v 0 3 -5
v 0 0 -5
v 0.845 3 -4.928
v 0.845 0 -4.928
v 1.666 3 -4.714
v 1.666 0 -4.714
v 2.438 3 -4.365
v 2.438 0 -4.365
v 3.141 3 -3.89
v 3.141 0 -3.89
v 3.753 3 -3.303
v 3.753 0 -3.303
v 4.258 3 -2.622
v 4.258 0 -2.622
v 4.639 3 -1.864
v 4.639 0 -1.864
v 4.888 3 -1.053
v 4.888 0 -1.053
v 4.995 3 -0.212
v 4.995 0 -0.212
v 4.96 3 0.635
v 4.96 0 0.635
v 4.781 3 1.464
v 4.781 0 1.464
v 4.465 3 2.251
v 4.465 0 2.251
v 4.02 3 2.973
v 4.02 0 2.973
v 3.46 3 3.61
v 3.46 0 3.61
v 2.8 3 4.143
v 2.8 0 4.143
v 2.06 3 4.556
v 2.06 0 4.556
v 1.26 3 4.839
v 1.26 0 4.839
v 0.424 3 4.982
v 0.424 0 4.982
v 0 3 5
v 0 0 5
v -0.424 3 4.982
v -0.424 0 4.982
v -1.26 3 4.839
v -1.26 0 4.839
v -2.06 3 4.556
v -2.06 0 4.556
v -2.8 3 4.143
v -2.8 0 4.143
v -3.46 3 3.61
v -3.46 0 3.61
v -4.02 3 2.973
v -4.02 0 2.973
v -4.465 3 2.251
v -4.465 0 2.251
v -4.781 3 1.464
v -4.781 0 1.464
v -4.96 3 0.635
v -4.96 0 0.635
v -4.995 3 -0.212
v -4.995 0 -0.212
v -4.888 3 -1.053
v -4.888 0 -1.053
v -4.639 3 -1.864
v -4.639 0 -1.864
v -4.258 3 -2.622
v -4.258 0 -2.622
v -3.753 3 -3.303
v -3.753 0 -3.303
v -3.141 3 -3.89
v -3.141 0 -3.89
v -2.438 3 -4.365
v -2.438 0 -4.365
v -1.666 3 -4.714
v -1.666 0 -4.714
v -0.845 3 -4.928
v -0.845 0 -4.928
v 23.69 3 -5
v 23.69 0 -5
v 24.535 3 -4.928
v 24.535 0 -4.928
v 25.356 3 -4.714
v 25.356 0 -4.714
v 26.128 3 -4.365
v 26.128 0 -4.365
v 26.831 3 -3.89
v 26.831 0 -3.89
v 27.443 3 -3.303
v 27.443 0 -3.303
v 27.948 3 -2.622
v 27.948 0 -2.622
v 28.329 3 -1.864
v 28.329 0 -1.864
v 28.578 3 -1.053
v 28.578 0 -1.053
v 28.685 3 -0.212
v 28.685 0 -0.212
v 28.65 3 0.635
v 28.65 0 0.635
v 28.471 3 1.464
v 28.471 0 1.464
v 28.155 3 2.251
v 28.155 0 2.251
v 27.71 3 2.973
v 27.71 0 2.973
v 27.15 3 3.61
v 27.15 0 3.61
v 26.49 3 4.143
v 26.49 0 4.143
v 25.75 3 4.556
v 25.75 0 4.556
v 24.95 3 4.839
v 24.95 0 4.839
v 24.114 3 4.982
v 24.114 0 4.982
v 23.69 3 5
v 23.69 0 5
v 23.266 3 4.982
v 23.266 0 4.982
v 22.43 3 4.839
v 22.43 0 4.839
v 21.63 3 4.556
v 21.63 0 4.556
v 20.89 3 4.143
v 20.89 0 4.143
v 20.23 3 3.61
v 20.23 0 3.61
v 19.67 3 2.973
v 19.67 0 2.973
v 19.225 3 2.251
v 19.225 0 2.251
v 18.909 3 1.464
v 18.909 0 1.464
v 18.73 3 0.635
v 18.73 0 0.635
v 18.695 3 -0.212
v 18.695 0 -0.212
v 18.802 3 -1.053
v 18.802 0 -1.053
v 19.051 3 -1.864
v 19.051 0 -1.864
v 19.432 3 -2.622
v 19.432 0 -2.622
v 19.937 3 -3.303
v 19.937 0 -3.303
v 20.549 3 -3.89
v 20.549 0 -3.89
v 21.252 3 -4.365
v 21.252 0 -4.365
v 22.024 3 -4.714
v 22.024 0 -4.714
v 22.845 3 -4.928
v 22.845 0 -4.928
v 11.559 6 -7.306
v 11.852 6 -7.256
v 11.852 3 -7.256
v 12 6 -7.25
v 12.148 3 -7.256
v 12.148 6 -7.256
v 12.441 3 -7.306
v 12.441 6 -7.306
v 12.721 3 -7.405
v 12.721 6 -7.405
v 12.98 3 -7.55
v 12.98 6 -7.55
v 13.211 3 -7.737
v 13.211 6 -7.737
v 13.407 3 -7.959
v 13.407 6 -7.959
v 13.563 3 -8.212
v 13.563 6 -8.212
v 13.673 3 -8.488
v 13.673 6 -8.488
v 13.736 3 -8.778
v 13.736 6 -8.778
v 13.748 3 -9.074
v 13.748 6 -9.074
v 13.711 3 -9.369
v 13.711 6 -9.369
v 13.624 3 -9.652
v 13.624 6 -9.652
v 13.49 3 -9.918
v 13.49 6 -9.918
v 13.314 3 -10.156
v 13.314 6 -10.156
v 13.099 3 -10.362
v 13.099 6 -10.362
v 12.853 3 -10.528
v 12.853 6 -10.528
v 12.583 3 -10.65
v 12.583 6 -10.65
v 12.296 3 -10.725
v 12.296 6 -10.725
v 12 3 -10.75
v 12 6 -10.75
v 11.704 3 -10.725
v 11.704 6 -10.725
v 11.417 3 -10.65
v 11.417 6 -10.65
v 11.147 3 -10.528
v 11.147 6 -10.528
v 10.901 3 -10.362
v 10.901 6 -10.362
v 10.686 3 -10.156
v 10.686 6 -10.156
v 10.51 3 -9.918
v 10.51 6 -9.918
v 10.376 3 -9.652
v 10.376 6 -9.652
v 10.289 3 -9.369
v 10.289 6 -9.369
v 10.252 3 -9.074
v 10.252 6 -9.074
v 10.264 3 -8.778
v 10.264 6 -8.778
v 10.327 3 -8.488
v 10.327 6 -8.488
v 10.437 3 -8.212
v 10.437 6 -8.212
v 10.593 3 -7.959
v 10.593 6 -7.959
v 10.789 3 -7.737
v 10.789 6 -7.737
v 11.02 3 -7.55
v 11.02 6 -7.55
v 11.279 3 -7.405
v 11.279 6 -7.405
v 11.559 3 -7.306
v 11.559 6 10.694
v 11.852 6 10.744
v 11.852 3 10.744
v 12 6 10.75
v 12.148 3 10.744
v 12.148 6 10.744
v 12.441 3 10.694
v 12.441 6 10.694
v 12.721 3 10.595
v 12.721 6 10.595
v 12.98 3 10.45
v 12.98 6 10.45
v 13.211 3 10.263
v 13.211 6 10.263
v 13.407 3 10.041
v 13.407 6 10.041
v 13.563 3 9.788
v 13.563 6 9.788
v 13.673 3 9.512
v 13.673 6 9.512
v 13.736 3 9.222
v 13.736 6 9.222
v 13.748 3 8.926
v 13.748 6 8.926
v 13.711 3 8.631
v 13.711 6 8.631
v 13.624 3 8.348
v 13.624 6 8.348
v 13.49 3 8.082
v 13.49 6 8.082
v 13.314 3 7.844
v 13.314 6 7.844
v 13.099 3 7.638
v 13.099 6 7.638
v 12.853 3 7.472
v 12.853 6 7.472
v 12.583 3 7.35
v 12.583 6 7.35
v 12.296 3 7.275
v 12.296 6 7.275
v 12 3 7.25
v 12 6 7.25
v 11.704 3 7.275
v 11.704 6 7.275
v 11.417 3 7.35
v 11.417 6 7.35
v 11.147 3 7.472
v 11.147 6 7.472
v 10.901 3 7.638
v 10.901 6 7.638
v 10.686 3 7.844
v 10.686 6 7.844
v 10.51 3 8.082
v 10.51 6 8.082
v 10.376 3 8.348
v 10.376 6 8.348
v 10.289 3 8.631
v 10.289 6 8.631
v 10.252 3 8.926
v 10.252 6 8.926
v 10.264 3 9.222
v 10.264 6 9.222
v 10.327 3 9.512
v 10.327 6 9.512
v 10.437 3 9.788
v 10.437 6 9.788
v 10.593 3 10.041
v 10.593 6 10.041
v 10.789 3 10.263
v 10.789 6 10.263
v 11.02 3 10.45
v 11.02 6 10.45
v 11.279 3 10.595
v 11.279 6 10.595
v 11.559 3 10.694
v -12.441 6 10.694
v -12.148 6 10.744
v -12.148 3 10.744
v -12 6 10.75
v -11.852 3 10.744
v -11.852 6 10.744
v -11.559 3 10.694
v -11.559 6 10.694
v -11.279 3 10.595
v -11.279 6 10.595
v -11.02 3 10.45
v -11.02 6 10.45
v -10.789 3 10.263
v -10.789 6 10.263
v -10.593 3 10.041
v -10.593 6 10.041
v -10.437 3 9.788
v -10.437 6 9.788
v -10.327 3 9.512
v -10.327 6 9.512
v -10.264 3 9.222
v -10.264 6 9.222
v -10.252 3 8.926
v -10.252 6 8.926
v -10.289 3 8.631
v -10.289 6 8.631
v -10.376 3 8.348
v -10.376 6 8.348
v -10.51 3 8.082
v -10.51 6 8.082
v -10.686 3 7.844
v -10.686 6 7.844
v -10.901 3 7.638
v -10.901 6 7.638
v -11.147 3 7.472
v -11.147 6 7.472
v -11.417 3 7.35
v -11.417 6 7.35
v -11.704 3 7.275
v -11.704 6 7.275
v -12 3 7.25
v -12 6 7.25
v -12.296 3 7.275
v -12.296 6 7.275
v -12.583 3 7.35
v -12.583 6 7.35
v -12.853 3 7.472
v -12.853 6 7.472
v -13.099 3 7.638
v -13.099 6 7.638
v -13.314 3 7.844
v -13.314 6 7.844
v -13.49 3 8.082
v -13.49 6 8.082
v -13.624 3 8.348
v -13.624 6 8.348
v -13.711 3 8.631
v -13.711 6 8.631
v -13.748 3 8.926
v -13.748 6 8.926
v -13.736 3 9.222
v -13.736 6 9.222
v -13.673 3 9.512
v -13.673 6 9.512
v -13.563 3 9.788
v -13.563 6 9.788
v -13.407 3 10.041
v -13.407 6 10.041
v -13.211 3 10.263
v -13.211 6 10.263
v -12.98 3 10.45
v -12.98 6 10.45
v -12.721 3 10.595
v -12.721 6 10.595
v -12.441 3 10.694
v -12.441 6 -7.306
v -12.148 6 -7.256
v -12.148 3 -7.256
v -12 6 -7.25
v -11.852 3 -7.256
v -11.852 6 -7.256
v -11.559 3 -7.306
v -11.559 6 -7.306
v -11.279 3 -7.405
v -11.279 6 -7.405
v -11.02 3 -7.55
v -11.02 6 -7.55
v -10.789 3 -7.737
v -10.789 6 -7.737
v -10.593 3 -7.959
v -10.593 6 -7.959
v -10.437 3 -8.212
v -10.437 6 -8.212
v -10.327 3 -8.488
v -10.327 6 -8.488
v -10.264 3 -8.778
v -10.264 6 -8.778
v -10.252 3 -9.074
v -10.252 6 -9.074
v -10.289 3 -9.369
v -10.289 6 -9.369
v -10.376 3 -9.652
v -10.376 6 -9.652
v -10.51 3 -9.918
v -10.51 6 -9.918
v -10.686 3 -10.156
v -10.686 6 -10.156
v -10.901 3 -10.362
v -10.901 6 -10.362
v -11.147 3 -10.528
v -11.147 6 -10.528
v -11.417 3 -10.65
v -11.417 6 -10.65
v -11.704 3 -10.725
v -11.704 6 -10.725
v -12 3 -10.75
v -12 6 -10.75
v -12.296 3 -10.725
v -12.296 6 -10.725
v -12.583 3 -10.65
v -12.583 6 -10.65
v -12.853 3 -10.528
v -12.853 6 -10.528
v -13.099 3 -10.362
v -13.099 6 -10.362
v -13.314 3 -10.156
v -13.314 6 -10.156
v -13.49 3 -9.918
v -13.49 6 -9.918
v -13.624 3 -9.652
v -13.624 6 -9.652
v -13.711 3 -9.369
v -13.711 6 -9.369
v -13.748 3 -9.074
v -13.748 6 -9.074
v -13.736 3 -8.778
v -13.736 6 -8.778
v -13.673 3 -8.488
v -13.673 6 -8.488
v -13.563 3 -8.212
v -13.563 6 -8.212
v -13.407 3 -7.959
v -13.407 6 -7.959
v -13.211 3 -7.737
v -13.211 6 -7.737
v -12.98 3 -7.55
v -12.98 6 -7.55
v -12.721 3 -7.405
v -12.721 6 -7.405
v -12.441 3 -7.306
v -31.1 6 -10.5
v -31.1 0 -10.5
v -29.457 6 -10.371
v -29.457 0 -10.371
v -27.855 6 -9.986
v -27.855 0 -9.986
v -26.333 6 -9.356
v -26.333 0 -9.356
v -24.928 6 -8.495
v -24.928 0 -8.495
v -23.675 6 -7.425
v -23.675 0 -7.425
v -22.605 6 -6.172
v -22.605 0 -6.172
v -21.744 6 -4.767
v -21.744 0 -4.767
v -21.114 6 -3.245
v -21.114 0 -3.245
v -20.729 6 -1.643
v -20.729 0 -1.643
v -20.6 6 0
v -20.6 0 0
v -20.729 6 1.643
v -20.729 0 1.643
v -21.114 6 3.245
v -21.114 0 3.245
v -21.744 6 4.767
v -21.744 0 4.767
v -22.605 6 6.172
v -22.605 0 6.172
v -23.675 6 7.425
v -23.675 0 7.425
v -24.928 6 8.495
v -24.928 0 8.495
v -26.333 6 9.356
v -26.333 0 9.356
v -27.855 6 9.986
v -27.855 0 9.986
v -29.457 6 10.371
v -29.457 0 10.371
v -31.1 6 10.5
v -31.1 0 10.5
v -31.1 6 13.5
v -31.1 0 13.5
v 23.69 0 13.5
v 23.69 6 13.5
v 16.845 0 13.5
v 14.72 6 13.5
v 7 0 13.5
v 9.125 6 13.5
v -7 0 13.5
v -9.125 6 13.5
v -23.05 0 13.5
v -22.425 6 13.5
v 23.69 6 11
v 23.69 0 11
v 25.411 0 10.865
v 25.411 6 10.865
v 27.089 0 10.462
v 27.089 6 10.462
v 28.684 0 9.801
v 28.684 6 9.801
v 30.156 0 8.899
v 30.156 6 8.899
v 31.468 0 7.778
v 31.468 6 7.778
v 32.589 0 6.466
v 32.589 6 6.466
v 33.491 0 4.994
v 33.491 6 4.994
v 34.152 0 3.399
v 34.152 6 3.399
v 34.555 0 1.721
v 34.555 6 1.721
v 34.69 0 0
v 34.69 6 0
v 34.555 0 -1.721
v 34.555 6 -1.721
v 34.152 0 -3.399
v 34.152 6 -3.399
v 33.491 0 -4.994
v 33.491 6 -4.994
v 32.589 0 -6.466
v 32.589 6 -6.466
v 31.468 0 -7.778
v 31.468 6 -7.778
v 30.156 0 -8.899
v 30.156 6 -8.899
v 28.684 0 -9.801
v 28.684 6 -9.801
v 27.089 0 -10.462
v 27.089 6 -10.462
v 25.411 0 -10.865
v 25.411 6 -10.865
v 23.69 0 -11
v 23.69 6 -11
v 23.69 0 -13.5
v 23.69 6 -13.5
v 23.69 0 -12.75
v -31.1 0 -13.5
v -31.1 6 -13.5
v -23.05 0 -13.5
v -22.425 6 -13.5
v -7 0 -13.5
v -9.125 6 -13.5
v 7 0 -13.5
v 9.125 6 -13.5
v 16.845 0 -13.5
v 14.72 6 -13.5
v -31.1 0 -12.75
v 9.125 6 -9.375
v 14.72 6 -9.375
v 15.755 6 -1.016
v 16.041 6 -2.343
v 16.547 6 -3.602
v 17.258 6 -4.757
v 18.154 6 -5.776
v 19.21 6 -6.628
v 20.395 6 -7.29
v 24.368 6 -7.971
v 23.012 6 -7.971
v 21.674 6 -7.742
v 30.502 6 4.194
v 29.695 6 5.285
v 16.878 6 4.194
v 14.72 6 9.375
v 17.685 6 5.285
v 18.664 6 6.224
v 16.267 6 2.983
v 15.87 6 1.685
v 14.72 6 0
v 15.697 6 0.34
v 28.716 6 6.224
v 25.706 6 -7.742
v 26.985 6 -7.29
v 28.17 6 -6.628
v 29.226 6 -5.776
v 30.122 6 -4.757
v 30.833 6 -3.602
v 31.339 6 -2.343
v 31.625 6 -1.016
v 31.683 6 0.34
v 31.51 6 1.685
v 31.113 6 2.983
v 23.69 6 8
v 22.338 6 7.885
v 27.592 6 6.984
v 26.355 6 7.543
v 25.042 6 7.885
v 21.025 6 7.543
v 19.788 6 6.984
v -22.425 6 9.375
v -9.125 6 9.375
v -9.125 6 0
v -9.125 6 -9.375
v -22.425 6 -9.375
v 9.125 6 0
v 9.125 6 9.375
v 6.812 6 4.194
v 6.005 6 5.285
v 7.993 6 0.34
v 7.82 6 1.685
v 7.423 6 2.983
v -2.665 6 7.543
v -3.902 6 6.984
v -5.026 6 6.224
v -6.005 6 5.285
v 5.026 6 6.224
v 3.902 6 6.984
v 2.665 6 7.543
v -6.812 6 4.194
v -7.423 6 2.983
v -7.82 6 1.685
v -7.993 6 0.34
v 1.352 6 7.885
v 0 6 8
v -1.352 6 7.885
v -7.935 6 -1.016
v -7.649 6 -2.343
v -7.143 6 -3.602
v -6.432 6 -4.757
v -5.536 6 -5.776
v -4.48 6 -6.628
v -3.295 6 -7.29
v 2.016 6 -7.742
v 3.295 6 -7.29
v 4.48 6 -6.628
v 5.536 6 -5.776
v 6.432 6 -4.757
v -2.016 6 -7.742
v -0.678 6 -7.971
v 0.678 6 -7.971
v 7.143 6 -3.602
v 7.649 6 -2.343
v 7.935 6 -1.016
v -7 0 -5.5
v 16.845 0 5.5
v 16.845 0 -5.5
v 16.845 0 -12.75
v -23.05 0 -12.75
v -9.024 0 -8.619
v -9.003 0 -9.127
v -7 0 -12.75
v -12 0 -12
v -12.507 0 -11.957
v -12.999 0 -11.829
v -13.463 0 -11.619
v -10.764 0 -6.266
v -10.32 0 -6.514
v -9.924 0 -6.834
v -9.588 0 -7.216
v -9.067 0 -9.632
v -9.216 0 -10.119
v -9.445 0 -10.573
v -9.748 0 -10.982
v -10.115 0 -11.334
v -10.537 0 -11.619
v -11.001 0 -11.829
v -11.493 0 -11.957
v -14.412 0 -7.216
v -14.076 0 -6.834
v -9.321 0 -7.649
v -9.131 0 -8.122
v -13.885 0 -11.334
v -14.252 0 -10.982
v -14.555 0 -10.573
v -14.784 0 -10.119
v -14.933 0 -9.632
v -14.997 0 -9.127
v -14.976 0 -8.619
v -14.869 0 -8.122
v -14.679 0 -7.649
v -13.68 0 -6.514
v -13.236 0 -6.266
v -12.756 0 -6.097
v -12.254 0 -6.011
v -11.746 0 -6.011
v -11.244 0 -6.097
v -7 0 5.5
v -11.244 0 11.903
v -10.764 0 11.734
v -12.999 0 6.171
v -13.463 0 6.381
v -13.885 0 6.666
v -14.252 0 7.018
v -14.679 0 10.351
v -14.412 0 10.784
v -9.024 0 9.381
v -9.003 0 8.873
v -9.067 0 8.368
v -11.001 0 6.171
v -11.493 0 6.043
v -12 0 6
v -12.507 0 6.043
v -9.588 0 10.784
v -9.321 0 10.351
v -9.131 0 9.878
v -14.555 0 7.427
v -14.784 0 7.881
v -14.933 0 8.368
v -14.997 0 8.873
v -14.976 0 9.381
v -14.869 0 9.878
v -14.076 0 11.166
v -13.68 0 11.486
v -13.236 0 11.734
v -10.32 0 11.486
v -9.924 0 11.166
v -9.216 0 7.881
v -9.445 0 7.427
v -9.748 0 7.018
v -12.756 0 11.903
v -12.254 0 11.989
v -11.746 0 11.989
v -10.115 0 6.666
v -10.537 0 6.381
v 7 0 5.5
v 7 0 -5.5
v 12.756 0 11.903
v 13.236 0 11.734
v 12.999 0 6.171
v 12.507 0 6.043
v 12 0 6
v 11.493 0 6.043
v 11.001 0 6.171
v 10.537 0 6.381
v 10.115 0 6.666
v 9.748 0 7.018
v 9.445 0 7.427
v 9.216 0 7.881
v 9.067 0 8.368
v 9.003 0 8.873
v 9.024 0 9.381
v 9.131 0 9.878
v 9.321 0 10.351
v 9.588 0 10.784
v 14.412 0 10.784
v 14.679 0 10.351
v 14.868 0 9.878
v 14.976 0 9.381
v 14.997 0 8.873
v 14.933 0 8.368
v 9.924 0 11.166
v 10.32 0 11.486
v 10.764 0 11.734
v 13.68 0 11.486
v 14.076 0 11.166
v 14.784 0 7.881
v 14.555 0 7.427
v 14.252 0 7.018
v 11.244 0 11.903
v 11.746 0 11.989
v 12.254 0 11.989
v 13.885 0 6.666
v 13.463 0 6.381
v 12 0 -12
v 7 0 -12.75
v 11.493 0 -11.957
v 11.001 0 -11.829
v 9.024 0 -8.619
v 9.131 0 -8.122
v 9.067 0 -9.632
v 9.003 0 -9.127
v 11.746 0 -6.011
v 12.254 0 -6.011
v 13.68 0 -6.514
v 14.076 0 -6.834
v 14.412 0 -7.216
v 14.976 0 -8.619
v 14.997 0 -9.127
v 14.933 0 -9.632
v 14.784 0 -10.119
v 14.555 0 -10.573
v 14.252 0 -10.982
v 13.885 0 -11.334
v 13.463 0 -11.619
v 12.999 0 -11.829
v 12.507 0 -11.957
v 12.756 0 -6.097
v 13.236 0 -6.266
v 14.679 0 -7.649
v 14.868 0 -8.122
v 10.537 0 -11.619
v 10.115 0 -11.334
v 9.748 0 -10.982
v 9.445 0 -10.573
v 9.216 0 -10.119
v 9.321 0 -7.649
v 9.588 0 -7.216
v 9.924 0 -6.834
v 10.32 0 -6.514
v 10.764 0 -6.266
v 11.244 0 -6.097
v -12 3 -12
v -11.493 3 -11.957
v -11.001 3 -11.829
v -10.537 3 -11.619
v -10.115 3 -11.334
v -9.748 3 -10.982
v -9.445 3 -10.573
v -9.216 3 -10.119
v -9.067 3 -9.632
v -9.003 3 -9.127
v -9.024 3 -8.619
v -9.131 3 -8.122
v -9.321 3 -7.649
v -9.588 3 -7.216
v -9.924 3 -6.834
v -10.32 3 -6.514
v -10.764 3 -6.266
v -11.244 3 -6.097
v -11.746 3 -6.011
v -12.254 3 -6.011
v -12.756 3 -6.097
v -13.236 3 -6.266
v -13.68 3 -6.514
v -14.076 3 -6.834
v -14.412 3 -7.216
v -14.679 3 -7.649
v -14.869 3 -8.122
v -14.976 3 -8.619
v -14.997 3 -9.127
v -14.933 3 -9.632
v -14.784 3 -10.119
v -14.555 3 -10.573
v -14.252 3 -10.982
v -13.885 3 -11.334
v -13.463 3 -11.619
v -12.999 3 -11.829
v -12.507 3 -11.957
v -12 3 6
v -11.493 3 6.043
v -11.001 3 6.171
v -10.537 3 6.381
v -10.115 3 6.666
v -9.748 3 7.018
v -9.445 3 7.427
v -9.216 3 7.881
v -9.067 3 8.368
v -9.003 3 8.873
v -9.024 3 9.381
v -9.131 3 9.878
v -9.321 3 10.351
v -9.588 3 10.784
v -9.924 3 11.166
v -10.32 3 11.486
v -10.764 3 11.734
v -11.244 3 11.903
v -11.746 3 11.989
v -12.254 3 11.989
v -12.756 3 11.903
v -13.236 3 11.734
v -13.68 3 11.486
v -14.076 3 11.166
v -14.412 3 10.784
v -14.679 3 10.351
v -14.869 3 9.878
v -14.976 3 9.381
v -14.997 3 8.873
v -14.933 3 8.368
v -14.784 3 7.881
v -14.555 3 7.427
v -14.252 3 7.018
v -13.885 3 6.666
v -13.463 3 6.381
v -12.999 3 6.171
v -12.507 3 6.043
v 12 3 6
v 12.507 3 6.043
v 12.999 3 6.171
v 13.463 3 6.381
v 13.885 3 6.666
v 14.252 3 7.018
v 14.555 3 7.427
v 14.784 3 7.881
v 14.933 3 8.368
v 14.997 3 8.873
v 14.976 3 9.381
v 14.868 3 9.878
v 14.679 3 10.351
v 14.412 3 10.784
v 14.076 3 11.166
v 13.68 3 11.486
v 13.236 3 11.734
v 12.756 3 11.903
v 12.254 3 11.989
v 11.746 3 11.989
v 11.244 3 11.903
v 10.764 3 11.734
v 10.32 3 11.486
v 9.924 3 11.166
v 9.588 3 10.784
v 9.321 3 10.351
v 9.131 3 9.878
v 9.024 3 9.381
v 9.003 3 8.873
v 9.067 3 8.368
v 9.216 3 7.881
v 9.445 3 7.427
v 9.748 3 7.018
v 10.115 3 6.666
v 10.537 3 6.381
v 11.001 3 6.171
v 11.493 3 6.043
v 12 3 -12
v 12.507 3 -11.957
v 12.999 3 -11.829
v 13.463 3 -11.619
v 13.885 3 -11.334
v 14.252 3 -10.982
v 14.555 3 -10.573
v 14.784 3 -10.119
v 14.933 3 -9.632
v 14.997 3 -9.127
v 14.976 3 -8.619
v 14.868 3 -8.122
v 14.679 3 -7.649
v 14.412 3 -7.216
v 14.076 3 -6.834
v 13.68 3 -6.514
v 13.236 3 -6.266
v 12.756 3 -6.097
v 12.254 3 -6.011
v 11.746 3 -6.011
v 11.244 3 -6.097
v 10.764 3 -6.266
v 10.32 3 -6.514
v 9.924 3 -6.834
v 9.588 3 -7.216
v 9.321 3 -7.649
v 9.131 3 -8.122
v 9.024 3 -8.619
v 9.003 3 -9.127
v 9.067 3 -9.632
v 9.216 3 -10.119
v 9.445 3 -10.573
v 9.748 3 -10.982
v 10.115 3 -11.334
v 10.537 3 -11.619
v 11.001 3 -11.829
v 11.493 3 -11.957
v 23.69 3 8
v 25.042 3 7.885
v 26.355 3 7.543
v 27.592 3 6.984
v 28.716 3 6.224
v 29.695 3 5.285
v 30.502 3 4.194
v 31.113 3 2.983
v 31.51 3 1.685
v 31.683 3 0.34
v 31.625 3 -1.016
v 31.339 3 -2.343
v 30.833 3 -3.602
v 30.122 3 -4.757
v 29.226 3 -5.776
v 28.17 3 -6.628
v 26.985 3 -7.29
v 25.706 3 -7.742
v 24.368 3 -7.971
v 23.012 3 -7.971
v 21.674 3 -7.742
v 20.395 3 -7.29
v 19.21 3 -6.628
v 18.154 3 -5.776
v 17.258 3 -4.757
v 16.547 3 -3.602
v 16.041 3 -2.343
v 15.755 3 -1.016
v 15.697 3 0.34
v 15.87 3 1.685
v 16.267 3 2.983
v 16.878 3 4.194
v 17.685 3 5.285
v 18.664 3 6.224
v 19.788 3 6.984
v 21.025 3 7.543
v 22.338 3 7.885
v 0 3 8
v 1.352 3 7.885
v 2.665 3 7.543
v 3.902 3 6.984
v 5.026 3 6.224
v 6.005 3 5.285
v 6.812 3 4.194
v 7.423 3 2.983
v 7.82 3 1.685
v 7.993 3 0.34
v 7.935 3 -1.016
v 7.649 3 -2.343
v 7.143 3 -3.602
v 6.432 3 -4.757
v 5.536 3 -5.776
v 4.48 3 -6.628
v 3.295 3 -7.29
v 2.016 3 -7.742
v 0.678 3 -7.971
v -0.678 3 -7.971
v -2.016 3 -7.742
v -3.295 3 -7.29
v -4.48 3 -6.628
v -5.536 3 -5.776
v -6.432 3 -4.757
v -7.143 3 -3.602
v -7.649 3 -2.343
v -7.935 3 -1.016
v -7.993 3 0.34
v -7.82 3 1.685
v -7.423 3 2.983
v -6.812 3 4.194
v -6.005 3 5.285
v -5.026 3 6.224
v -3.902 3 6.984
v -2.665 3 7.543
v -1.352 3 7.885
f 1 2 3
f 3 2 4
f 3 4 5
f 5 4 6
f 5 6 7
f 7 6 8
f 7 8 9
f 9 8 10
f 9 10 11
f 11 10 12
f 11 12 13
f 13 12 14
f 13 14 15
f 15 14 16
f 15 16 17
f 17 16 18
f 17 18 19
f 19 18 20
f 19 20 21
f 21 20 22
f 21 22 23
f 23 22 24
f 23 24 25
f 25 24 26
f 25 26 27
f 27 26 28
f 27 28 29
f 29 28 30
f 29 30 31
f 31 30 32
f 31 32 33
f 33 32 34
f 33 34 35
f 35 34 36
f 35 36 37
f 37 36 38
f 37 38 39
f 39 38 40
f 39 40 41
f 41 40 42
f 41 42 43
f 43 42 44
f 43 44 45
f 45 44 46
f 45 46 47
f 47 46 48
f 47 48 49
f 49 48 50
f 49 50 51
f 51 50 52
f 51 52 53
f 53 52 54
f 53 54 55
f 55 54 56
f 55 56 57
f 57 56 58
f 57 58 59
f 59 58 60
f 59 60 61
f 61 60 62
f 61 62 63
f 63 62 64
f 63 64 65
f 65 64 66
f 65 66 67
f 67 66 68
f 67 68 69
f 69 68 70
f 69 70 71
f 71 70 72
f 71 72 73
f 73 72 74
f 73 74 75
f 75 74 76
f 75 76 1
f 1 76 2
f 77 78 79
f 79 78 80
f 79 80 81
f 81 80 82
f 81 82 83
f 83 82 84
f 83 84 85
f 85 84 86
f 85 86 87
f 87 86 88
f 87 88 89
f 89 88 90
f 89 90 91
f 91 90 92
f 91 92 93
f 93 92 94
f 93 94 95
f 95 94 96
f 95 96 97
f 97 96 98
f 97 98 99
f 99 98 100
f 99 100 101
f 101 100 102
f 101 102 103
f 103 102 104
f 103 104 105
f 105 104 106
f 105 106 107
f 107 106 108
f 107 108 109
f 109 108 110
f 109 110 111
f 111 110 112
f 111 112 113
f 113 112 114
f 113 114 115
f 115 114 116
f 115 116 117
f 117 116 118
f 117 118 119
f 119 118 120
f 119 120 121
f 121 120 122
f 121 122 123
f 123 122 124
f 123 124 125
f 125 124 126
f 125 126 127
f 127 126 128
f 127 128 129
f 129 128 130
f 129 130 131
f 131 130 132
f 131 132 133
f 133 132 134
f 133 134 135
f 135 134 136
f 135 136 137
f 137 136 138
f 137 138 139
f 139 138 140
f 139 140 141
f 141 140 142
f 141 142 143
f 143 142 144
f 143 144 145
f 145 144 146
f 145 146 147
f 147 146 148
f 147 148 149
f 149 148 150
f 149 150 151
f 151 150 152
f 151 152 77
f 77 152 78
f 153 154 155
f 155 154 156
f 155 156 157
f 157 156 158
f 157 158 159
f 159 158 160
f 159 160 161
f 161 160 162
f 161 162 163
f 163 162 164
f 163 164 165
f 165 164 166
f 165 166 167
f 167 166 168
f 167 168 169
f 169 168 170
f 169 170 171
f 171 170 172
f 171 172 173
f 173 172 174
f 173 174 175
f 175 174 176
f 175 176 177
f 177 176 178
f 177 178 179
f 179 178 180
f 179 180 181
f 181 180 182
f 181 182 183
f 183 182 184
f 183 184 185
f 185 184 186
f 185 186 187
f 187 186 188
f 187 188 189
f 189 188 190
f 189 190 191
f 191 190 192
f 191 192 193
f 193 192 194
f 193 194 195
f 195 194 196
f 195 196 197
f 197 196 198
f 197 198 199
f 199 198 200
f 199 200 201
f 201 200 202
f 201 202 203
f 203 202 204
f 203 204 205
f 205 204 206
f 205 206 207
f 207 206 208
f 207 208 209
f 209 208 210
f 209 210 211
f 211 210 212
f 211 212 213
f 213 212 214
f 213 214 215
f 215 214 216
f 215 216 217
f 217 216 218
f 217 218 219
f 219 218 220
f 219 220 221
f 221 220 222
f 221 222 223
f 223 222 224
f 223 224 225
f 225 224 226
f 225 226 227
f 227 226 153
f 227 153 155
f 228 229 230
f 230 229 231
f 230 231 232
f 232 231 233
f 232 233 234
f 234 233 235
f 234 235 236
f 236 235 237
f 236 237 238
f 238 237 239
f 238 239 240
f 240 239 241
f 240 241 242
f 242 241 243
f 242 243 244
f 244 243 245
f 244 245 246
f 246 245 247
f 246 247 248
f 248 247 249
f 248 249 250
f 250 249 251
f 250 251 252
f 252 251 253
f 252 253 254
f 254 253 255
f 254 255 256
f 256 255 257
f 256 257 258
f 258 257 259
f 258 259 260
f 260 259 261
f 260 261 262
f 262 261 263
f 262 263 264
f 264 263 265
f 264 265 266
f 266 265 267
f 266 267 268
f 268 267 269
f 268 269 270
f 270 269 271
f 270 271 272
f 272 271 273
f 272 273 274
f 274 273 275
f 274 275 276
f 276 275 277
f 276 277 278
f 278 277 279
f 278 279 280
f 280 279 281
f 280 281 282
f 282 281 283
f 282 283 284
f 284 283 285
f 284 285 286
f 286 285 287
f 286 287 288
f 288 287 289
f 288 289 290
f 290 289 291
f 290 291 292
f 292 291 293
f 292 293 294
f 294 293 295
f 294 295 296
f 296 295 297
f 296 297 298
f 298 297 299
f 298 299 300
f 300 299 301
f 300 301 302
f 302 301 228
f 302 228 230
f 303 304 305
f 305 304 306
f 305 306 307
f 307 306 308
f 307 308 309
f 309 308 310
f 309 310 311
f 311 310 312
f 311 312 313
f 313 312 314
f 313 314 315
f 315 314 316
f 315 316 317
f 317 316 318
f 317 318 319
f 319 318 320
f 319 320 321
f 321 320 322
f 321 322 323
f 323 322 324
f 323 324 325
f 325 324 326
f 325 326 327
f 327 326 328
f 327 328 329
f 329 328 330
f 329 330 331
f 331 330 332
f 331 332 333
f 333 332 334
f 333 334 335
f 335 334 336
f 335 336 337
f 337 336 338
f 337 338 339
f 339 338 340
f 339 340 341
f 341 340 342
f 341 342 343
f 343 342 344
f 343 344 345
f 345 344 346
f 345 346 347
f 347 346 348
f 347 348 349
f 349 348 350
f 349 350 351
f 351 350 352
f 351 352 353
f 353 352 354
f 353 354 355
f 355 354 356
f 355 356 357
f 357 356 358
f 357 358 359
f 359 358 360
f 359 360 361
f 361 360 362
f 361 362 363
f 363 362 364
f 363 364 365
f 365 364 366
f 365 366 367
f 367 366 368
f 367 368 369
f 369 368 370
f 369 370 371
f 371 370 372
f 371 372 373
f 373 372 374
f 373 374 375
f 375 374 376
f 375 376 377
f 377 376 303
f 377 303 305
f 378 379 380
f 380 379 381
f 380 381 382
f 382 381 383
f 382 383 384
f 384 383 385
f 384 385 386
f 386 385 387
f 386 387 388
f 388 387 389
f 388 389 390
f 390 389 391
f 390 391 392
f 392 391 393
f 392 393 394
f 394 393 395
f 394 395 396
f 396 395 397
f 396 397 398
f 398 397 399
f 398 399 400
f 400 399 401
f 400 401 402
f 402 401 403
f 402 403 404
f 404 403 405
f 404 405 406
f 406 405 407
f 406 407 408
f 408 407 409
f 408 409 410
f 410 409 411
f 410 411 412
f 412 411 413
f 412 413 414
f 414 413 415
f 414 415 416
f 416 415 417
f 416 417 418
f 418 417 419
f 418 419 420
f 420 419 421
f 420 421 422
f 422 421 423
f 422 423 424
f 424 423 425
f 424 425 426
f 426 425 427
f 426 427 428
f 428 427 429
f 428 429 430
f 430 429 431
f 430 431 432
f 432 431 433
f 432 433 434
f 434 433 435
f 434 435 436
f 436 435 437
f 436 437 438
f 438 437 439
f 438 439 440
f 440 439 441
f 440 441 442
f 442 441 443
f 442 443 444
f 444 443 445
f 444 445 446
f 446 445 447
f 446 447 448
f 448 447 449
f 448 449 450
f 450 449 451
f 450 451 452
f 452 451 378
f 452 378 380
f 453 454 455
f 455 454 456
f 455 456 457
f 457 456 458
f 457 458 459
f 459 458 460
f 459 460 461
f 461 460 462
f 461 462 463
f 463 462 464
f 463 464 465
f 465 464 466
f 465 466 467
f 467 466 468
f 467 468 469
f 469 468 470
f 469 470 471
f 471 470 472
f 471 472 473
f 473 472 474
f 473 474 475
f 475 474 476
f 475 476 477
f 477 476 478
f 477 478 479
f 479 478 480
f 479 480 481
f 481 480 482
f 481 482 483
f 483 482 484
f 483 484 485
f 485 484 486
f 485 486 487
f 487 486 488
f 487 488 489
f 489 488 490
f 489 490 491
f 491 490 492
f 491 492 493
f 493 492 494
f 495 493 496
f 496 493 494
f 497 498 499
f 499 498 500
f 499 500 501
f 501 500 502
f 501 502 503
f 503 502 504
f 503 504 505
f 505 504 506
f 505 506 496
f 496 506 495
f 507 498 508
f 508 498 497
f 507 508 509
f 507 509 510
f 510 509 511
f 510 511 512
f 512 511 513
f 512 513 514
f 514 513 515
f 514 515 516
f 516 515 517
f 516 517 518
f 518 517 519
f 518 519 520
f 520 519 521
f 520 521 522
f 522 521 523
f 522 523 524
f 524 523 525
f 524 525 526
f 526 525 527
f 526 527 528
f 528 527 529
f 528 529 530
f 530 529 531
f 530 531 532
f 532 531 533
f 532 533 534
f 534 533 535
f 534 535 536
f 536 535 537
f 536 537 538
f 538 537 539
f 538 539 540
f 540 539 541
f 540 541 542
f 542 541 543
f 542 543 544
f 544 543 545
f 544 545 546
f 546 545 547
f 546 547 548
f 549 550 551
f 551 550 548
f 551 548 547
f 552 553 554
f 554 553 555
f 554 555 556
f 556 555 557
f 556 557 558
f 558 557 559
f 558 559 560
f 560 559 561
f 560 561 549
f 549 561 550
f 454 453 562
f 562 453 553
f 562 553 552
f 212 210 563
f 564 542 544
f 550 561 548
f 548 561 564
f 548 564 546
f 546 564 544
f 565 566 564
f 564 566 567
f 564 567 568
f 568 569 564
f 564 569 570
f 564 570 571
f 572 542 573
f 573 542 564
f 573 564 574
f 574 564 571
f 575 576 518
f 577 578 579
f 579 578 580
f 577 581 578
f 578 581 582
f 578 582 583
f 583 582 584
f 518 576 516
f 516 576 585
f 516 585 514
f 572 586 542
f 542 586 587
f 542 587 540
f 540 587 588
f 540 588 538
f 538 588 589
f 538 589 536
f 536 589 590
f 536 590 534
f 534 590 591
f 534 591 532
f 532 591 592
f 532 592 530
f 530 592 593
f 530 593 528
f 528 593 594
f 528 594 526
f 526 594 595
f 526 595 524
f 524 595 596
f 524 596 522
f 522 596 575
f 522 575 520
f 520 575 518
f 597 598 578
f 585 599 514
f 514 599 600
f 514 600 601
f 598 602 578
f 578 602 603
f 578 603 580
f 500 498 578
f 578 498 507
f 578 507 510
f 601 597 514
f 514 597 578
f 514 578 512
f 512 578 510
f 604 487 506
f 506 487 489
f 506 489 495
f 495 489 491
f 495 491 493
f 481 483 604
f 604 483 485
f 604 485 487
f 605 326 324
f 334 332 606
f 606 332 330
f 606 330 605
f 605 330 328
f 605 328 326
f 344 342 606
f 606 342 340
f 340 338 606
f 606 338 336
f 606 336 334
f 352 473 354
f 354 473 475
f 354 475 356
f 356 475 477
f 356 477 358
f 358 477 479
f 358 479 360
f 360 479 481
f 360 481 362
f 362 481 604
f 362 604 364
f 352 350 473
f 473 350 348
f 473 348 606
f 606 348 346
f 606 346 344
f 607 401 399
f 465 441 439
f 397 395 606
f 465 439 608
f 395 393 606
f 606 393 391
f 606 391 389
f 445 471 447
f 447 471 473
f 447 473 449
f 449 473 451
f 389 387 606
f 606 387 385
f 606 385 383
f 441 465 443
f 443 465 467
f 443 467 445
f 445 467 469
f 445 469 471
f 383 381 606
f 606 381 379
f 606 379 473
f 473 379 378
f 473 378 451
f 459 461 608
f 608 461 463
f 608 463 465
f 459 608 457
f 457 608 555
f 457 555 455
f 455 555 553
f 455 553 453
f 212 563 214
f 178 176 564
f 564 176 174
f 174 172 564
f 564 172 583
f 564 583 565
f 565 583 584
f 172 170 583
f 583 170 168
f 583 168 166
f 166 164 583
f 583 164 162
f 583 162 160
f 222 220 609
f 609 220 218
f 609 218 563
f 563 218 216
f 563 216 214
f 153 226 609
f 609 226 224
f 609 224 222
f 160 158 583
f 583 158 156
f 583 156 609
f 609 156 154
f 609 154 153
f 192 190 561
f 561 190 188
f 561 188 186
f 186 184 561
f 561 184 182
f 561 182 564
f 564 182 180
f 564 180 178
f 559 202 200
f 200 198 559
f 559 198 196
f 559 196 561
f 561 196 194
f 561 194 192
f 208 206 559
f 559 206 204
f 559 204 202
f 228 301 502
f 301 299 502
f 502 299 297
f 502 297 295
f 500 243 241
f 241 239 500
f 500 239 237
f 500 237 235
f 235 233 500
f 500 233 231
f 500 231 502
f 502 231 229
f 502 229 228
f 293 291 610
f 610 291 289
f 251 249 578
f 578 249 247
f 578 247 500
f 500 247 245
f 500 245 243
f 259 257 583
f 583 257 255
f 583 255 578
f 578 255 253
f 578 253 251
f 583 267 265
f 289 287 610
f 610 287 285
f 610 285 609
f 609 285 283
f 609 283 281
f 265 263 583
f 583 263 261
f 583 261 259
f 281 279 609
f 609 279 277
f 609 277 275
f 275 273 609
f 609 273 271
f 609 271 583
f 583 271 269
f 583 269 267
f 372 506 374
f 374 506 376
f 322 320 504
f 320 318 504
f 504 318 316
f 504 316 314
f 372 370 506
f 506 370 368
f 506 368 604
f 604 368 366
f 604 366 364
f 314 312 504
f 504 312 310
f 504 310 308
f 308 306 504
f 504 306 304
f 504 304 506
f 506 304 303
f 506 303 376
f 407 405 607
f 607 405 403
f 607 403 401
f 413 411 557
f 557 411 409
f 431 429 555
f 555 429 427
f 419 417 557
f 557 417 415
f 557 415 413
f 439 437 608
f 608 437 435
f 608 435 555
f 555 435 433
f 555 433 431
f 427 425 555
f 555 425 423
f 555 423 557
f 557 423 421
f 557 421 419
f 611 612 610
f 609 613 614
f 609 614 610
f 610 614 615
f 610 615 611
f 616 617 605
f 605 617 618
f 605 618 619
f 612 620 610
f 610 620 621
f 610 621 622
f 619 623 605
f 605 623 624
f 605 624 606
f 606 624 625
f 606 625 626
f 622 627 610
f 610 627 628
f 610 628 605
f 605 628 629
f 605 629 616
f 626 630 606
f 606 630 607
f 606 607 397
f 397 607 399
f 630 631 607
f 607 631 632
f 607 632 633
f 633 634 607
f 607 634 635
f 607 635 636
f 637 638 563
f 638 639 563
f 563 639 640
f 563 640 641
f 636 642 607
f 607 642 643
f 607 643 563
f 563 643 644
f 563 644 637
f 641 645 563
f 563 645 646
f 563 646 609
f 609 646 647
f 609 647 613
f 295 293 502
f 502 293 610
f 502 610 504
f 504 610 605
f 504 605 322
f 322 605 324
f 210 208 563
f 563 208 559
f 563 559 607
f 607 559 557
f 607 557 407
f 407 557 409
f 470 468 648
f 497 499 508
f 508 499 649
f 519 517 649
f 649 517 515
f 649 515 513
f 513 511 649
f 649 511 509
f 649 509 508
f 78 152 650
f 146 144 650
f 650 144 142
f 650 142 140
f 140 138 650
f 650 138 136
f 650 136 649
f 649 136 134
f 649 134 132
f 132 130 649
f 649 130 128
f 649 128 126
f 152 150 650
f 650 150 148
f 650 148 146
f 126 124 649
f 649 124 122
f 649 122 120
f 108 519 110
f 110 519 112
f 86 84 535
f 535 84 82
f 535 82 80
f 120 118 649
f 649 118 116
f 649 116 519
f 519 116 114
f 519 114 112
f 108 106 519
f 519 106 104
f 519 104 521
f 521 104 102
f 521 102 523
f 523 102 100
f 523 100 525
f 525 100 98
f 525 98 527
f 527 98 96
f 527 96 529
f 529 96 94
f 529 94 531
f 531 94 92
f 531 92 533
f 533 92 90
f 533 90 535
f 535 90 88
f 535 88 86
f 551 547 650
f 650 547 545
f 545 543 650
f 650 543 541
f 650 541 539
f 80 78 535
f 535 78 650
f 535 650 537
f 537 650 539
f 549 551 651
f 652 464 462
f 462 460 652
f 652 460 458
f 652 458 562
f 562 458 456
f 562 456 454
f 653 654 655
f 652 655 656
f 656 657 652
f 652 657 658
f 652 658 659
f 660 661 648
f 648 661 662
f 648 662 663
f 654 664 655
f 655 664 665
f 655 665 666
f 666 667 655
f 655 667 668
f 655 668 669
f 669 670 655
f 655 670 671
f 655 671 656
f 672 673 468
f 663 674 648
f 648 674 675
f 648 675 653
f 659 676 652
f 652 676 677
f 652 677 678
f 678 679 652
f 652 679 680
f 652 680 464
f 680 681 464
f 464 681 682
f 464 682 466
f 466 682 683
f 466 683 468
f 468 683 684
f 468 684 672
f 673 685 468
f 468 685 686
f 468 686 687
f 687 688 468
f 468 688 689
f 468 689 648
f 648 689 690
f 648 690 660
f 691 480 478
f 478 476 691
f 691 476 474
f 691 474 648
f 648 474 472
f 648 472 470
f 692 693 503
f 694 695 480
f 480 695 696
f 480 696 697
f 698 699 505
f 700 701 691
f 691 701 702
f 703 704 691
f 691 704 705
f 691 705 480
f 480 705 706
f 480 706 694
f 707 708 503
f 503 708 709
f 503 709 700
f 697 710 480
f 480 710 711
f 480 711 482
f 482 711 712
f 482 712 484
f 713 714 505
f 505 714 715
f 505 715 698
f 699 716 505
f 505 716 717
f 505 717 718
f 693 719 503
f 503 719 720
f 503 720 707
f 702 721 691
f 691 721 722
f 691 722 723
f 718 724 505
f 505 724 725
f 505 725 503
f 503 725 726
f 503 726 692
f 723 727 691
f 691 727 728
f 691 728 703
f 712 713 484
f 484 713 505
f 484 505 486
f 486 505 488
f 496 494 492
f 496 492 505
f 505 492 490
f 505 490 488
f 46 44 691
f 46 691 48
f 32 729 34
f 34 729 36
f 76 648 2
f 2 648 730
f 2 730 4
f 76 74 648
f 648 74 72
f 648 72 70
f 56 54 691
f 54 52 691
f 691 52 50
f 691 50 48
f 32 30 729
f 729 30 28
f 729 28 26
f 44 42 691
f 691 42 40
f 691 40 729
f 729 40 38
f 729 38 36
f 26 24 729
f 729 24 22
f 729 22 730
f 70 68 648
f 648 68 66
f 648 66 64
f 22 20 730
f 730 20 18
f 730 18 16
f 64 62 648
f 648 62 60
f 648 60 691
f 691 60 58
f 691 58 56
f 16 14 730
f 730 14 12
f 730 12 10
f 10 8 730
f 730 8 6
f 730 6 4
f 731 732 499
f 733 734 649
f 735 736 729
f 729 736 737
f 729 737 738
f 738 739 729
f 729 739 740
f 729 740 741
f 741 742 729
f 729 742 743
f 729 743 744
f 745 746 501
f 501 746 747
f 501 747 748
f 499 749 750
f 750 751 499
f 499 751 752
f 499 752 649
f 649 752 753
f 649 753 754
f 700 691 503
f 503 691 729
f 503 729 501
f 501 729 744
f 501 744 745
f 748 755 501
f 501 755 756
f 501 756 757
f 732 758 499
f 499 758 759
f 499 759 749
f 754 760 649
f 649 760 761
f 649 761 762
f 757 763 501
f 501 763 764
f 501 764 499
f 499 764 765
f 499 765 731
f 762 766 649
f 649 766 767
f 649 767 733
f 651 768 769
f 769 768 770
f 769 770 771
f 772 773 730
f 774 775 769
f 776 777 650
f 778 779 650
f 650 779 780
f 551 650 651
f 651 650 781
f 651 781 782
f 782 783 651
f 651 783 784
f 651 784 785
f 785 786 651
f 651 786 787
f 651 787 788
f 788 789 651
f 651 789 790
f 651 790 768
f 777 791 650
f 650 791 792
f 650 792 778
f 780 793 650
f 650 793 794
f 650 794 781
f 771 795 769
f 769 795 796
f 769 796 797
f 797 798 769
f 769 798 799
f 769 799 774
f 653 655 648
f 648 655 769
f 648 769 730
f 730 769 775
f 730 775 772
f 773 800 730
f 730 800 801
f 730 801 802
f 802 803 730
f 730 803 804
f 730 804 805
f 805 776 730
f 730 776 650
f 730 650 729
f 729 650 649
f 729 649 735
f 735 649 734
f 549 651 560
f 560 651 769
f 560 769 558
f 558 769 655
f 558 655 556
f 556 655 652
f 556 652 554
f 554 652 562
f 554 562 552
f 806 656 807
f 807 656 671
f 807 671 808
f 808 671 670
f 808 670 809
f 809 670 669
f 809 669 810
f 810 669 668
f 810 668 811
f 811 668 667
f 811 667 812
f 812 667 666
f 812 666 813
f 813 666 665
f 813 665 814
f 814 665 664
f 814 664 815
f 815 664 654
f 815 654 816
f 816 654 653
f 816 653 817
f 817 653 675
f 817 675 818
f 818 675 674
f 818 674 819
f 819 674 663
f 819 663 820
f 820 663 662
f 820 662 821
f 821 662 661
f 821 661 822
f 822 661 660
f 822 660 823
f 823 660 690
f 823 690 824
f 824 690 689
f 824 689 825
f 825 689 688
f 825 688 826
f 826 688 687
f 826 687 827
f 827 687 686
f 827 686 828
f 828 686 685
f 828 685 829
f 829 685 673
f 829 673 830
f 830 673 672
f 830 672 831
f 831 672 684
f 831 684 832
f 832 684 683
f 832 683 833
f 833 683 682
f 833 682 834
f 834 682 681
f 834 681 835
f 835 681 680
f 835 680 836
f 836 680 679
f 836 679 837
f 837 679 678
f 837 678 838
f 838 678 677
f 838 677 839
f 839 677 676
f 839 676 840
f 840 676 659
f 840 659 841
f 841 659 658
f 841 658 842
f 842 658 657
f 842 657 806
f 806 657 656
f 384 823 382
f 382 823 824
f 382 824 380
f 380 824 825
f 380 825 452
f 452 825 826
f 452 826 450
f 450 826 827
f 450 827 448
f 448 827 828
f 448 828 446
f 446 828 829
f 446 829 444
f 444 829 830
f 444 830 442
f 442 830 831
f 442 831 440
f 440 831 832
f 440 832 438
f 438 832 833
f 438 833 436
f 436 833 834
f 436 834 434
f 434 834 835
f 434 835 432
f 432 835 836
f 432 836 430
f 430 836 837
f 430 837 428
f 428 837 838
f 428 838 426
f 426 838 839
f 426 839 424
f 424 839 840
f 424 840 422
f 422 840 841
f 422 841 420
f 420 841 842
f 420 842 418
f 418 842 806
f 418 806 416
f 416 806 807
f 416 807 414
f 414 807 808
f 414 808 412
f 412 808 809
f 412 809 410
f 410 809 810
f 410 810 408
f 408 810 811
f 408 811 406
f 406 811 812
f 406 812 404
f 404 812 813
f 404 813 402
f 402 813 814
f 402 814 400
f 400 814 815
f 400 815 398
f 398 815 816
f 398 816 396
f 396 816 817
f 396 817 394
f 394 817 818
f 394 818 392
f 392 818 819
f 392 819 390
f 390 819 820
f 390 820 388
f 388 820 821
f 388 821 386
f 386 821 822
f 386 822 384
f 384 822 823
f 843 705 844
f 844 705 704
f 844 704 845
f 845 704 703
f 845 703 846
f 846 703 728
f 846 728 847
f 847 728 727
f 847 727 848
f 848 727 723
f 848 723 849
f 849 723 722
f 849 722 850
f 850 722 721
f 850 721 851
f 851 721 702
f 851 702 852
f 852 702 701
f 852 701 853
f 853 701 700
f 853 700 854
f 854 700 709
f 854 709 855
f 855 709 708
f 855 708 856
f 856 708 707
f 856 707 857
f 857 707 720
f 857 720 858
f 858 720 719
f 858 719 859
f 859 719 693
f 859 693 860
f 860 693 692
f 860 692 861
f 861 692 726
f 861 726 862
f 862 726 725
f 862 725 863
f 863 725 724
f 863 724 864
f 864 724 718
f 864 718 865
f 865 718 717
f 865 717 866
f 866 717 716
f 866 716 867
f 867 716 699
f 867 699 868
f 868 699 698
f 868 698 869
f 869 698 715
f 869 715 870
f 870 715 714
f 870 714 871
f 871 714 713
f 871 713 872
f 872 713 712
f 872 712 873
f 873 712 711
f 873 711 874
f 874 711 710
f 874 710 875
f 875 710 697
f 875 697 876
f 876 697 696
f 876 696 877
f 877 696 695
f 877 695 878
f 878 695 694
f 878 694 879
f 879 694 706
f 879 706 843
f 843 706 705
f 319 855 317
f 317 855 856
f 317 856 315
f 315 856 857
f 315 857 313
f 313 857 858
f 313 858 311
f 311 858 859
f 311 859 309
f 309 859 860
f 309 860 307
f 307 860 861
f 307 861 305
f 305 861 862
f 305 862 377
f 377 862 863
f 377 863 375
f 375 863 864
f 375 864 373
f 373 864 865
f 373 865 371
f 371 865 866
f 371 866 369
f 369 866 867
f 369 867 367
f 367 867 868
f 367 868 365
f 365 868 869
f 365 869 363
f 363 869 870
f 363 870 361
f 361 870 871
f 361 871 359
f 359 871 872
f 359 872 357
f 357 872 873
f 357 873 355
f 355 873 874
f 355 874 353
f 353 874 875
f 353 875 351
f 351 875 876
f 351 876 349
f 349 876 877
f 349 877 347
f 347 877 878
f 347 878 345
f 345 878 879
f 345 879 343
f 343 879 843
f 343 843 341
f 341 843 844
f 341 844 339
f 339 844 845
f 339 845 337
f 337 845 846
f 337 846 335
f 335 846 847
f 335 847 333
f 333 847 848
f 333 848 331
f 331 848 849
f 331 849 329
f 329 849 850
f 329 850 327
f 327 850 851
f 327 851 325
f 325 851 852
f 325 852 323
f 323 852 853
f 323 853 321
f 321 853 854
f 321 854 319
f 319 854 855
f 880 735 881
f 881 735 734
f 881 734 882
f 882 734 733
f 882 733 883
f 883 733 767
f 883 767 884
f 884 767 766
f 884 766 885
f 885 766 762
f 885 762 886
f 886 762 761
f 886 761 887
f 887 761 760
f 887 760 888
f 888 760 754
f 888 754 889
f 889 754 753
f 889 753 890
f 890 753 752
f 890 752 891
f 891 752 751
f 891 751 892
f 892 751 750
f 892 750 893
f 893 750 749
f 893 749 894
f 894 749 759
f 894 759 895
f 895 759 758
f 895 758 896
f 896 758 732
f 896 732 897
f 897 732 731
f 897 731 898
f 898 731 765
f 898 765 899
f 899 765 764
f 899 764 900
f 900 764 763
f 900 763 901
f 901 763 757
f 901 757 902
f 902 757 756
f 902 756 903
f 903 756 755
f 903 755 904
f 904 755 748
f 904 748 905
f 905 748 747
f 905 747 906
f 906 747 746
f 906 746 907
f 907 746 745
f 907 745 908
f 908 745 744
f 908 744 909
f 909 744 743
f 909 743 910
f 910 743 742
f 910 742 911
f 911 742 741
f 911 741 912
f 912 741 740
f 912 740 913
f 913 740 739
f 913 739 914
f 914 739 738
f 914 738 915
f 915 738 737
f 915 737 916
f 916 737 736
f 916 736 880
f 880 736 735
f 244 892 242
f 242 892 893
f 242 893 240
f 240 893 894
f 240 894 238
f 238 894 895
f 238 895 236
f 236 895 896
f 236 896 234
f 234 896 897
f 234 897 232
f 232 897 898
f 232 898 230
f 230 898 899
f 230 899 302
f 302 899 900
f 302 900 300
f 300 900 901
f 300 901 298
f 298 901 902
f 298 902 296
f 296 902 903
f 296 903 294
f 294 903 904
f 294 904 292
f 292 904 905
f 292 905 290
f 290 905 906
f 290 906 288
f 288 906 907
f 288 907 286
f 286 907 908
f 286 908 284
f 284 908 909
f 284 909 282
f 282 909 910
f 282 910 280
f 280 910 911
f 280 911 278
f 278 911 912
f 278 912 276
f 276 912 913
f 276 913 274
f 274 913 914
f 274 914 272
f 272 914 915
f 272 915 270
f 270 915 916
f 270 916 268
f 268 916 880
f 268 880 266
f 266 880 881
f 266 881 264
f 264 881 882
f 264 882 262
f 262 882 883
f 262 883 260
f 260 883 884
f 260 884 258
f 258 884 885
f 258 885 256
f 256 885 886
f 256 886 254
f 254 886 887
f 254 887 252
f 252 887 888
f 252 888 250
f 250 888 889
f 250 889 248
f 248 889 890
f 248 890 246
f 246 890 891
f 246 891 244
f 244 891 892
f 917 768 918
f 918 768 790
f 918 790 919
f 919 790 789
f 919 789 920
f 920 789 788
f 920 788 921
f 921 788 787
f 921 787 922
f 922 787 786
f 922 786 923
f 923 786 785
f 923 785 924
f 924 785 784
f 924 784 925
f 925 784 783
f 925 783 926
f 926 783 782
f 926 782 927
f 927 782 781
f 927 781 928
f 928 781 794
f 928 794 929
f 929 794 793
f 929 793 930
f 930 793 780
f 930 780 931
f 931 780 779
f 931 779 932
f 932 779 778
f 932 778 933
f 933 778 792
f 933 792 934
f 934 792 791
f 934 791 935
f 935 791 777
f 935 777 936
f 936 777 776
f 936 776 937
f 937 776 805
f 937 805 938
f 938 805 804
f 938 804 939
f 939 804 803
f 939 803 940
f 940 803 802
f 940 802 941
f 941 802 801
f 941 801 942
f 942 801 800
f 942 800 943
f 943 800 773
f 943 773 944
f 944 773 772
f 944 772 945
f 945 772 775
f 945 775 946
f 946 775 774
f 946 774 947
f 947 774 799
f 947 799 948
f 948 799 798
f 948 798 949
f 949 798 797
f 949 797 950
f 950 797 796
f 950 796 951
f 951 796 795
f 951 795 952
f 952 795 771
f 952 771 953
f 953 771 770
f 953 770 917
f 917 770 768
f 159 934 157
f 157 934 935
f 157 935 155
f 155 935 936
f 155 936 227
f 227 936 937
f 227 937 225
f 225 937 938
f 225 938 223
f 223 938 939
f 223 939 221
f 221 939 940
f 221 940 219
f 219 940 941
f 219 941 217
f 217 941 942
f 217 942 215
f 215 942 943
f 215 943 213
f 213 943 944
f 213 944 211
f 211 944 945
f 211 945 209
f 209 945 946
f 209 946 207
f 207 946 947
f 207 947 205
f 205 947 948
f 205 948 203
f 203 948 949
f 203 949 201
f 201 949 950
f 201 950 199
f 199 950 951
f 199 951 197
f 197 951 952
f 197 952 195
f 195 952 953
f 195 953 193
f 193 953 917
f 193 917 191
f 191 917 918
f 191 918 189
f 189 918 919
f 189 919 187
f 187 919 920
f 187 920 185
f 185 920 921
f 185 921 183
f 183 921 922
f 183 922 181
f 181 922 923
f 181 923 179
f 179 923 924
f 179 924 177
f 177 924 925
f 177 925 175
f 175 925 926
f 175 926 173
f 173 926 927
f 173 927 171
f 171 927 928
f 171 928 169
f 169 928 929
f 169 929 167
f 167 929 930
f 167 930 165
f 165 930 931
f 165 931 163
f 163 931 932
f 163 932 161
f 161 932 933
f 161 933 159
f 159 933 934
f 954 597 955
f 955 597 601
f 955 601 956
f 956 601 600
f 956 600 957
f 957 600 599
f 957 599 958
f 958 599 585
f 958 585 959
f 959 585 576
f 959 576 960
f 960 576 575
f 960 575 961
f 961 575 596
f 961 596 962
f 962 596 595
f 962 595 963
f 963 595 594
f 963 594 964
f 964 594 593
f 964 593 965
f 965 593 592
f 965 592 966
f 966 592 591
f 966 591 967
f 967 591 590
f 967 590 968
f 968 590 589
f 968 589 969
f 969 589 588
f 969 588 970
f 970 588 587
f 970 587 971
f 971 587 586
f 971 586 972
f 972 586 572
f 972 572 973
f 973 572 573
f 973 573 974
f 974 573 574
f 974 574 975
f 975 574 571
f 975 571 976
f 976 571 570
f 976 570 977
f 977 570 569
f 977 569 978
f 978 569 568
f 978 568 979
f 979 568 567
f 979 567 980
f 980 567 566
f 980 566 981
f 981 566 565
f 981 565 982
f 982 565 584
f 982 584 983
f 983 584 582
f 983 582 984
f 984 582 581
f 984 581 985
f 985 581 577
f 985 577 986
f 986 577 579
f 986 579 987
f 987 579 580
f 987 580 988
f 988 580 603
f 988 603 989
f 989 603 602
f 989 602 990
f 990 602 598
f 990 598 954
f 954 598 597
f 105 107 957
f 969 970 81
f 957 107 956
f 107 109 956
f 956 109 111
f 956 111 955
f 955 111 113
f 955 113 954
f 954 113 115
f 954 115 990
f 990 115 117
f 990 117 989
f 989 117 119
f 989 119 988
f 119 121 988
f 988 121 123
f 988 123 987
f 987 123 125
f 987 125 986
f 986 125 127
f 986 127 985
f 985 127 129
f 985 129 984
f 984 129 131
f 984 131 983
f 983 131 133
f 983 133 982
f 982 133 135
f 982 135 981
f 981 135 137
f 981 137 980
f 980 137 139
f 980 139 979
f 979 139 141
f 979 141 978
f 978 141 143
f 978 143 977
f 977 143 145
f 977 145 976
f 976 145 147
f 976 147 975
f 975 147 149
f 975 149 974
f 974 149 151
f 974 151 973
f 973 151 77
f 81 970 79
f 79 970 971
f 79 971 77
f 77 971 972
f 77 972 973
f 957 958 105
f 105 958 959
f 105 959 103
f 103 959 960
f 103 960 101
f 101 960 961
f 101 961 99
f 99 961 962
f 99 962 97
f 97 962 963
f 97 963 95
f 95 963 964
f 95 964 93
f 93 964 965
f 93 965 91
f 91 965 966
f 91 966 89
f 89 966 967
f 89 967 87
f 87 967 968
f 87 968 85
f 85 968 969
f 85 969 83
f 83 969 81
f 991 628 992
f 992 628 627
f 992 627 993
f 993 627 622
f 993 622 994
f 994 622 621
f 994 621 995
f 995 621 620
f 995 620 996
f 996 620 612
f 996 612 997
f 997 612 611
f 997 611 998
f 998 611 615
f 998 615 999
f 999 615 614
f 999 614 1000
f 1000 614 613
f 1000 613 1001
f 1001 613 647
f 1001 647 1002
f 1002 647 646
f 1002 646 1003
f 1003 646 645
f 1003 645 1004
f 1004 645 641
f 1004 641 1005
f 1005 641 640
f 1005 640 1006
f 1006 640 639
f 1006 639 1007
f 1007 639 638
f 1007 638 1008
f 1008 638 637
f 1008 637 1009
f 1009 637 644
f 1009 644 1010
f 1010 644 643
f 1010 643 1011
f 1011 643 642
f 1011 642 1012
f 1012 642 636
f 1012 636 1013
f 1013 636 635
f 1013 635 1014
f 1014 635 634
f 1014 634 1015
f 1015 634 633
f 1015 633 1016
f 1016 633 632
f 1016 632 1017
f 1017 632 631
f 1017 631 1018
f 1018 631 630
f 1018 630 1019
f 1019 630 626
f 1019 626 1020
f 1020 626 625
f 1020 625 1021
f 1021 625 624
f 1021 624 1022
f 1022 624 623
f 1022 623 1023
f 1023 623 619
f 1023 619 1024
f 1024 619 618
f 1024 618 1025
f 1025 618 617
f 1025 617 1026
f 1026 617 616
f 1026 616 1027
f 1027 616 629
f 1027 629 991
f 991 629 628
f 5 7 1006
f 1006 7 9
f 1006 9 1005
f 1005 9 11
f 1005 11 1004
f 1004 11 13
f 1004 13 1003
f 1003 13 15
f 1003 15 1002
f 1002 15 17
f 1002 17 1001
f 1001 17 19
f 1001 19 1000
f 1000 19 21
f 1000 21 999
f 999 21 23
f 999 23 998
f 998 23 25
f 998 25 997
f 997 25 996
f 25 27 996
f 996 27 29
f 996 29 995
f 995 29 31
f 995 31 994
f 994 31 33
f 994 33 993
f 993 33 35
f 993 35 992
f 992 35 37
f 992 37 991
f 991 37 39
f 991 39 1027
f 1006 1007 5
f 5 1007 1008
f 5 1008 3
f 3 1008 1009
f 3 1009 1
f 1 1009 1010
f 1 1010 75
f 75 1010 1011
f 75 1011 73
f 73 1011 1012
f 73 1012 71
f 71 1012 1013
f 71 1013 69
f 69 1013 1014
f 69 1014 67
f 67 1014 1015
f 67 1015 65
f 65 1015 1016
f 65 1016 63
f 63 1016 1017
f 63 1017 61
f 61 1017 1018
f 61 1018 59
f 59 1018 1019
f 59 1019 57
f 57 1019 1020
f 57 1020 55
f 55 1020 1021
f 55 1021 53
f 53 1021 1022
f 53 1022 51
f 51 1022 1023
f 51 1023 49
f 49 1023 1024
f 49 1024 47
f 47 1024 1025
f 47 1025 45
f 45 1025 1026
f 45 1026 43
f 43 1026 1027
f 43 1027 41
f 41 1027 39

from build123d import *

# Parameters (mm, degrees)
SKETCH1_R           = 1.75
SKETCH1_R_2         = 5
BOSS_EXTRUDE1_DEPTH = 6
SKETCH2_R           = 3
SKETCH2_R_2         = 1.75
CUT_EXTRUDE1_DEPTH  = 3
CUT_EXTRUDE2_START  = -3
SKETCH3_R           = 8
SKETCH3_R_2         = 5
CUT_EXTRUDE2_DEPTH  = 3


with BuildPart() as part:
    # Sketch1 → Boss-Extrude1 (new body)
    with BuildSketch(Plane(origin=(0, 0, 0), x_dir=(1, 0, 0), z_dir=(0, 1, 0))):
        with BuildLine():
            Line((23.69, 13.5), (-31.1, 13.5))
            Line((-31.1, 13.5), (-31.1, 10.5))
            ThreePointArc((-31.1, 10.5), (-20.6, 0), (-31.1, -10.5))
            Line((-31.1, -10.5), (-31.1, -13.5))
            Line((-31.1, -13.5), (23.69, -13.5))
            Line((23.69, -13.5), (23.69, -11))
            ThreePointArc((23.69, -11), (34.69, 0), (23.69, 11))
            Line((23.69, 11), (23.69, 13.5))
        make_face()
        with Locations(Location((-12, -9, 0), (0, 0, 270))):
            Circle(SKETCH1_R, mode=Mode.SUBTRACT)
        with Locations(Location((12, -9, 0), (0, 0, 270))):
            Circle(SKETCH1_R, mode=Mode.SUBTRACT)
        with Locations(Location((-12, 9, 0), (0, 0, 270))):
            Circle(SKETCH1_R, mode=Mode.SUBTRACT)
        with Locations(Location((0, 0, 0), (0, 0, 270))):
            Circle(SKETCH1_R_2, mode=Mode.SUBTRACT)
        with Locations(Location((12, 9, 0), (0, 0, 270))):
            Circle(SKETCH1_R, mode=Mode.SUBTRACT)
        with Locations(Location((23.69, 0, 0), (0, 0, 270))):
            Circle(SKETCH1_R_2, mode=Mode.SUBTRACT)
    extrude(amount=BOSS_EXTRUDE1_DEPTH)

    # Sketch2 → Cut-Extrude1 (cut)
    # profile 1 of 4: a face of its own
    with BuildSketch(Plane.XZ):
        with Locations(Location((-12, -9, 0), (0, 0, 270))):
            Circle(SKETCH2_R)
        with Locations(Location((-12, -9, 0), (0, 0, 270))):
            Circle(SKETCH2_R_2, mode=Mode.SUBTRACT)
    # profile 2 of 4: a face of its own
    with BuildSketch(Plane.XZ):
        with Locations(Location((-12, 9, 0), (0, 0, 270))):
            Circle(SKETCH2_R)
        with Locations(Location((-12, 9, 0), (0, 0, 270))):
            Circle(SKETCH2_R_2, mode=Mode.SUBTRACT)
    # profile 3 of 4: a face of its own
    with BuildSketch(Plane.XZ):
        with Locations(Location((12, 9, 0), (0, 0, 270))):
            Circle(SKETCH2_R)
        with Locations(Location((12, 9, 0), (0, 0, 270))):
            Circle(SKETCH2_R_2, mode=Mode.SUBTRACT)
    # profile 4 of 4: a face of its own
    with BuildSketch(Plane.XZ):
        with Locations(Location((12, -9, 0), (0, 0, 270))):
            Circle(SKETCH2_R)
        with Locations(Location((12, -9, 0), (0, 0, 270))):
            Circle(SKETCH2_R_2, mode=Mode.SUBTRACT)
    extrude(amount=-CUT_EXTRUDE1_DEPTH, mode=Mode.SUBTRACT)

    # Sketch3 → Cut-Extrude2 (cut)
    # profile 1 of 2: a face of its own
    with BuildSketch(Plane(origin=(0, 6, 0), x_dir=(1, 0, 0), z_dir=(0, 1, 0)).offset(CUT_EXTRUDE2_START)):
        with Locations(Location((0, 0, 0), (0, 0, 270))):
            Circle(SKETCH3_R)
        with Locations(Location((0, 0, 0), (0, 0, 270))):
            Circle(SKETCH3_R_2, mode=Mode.SUBTRACT)
    # profile 2 of 2: a face of its own
    with BuildSketch(Plane(origin=(0, 6, 0), x_dir=(1, 0, 0), z_dir=(0, 1, 0)).offset(CUT_EXTRUDE2_START)):
        with Locations(Location((23.69, 0, 0), (0, 0, 270))):
            Circle(SKETCH3_R)
        with Locations(Location((23.69, 0, 0), (0, 0, 270))):
            Circle(SKETCH3_R_2, mode=Mode.SUBTRACT)
    extrude(amount=CUT_EXTRUDE2_DEPTH, mode=Mode.SUBTRACT)


solid = part.part
